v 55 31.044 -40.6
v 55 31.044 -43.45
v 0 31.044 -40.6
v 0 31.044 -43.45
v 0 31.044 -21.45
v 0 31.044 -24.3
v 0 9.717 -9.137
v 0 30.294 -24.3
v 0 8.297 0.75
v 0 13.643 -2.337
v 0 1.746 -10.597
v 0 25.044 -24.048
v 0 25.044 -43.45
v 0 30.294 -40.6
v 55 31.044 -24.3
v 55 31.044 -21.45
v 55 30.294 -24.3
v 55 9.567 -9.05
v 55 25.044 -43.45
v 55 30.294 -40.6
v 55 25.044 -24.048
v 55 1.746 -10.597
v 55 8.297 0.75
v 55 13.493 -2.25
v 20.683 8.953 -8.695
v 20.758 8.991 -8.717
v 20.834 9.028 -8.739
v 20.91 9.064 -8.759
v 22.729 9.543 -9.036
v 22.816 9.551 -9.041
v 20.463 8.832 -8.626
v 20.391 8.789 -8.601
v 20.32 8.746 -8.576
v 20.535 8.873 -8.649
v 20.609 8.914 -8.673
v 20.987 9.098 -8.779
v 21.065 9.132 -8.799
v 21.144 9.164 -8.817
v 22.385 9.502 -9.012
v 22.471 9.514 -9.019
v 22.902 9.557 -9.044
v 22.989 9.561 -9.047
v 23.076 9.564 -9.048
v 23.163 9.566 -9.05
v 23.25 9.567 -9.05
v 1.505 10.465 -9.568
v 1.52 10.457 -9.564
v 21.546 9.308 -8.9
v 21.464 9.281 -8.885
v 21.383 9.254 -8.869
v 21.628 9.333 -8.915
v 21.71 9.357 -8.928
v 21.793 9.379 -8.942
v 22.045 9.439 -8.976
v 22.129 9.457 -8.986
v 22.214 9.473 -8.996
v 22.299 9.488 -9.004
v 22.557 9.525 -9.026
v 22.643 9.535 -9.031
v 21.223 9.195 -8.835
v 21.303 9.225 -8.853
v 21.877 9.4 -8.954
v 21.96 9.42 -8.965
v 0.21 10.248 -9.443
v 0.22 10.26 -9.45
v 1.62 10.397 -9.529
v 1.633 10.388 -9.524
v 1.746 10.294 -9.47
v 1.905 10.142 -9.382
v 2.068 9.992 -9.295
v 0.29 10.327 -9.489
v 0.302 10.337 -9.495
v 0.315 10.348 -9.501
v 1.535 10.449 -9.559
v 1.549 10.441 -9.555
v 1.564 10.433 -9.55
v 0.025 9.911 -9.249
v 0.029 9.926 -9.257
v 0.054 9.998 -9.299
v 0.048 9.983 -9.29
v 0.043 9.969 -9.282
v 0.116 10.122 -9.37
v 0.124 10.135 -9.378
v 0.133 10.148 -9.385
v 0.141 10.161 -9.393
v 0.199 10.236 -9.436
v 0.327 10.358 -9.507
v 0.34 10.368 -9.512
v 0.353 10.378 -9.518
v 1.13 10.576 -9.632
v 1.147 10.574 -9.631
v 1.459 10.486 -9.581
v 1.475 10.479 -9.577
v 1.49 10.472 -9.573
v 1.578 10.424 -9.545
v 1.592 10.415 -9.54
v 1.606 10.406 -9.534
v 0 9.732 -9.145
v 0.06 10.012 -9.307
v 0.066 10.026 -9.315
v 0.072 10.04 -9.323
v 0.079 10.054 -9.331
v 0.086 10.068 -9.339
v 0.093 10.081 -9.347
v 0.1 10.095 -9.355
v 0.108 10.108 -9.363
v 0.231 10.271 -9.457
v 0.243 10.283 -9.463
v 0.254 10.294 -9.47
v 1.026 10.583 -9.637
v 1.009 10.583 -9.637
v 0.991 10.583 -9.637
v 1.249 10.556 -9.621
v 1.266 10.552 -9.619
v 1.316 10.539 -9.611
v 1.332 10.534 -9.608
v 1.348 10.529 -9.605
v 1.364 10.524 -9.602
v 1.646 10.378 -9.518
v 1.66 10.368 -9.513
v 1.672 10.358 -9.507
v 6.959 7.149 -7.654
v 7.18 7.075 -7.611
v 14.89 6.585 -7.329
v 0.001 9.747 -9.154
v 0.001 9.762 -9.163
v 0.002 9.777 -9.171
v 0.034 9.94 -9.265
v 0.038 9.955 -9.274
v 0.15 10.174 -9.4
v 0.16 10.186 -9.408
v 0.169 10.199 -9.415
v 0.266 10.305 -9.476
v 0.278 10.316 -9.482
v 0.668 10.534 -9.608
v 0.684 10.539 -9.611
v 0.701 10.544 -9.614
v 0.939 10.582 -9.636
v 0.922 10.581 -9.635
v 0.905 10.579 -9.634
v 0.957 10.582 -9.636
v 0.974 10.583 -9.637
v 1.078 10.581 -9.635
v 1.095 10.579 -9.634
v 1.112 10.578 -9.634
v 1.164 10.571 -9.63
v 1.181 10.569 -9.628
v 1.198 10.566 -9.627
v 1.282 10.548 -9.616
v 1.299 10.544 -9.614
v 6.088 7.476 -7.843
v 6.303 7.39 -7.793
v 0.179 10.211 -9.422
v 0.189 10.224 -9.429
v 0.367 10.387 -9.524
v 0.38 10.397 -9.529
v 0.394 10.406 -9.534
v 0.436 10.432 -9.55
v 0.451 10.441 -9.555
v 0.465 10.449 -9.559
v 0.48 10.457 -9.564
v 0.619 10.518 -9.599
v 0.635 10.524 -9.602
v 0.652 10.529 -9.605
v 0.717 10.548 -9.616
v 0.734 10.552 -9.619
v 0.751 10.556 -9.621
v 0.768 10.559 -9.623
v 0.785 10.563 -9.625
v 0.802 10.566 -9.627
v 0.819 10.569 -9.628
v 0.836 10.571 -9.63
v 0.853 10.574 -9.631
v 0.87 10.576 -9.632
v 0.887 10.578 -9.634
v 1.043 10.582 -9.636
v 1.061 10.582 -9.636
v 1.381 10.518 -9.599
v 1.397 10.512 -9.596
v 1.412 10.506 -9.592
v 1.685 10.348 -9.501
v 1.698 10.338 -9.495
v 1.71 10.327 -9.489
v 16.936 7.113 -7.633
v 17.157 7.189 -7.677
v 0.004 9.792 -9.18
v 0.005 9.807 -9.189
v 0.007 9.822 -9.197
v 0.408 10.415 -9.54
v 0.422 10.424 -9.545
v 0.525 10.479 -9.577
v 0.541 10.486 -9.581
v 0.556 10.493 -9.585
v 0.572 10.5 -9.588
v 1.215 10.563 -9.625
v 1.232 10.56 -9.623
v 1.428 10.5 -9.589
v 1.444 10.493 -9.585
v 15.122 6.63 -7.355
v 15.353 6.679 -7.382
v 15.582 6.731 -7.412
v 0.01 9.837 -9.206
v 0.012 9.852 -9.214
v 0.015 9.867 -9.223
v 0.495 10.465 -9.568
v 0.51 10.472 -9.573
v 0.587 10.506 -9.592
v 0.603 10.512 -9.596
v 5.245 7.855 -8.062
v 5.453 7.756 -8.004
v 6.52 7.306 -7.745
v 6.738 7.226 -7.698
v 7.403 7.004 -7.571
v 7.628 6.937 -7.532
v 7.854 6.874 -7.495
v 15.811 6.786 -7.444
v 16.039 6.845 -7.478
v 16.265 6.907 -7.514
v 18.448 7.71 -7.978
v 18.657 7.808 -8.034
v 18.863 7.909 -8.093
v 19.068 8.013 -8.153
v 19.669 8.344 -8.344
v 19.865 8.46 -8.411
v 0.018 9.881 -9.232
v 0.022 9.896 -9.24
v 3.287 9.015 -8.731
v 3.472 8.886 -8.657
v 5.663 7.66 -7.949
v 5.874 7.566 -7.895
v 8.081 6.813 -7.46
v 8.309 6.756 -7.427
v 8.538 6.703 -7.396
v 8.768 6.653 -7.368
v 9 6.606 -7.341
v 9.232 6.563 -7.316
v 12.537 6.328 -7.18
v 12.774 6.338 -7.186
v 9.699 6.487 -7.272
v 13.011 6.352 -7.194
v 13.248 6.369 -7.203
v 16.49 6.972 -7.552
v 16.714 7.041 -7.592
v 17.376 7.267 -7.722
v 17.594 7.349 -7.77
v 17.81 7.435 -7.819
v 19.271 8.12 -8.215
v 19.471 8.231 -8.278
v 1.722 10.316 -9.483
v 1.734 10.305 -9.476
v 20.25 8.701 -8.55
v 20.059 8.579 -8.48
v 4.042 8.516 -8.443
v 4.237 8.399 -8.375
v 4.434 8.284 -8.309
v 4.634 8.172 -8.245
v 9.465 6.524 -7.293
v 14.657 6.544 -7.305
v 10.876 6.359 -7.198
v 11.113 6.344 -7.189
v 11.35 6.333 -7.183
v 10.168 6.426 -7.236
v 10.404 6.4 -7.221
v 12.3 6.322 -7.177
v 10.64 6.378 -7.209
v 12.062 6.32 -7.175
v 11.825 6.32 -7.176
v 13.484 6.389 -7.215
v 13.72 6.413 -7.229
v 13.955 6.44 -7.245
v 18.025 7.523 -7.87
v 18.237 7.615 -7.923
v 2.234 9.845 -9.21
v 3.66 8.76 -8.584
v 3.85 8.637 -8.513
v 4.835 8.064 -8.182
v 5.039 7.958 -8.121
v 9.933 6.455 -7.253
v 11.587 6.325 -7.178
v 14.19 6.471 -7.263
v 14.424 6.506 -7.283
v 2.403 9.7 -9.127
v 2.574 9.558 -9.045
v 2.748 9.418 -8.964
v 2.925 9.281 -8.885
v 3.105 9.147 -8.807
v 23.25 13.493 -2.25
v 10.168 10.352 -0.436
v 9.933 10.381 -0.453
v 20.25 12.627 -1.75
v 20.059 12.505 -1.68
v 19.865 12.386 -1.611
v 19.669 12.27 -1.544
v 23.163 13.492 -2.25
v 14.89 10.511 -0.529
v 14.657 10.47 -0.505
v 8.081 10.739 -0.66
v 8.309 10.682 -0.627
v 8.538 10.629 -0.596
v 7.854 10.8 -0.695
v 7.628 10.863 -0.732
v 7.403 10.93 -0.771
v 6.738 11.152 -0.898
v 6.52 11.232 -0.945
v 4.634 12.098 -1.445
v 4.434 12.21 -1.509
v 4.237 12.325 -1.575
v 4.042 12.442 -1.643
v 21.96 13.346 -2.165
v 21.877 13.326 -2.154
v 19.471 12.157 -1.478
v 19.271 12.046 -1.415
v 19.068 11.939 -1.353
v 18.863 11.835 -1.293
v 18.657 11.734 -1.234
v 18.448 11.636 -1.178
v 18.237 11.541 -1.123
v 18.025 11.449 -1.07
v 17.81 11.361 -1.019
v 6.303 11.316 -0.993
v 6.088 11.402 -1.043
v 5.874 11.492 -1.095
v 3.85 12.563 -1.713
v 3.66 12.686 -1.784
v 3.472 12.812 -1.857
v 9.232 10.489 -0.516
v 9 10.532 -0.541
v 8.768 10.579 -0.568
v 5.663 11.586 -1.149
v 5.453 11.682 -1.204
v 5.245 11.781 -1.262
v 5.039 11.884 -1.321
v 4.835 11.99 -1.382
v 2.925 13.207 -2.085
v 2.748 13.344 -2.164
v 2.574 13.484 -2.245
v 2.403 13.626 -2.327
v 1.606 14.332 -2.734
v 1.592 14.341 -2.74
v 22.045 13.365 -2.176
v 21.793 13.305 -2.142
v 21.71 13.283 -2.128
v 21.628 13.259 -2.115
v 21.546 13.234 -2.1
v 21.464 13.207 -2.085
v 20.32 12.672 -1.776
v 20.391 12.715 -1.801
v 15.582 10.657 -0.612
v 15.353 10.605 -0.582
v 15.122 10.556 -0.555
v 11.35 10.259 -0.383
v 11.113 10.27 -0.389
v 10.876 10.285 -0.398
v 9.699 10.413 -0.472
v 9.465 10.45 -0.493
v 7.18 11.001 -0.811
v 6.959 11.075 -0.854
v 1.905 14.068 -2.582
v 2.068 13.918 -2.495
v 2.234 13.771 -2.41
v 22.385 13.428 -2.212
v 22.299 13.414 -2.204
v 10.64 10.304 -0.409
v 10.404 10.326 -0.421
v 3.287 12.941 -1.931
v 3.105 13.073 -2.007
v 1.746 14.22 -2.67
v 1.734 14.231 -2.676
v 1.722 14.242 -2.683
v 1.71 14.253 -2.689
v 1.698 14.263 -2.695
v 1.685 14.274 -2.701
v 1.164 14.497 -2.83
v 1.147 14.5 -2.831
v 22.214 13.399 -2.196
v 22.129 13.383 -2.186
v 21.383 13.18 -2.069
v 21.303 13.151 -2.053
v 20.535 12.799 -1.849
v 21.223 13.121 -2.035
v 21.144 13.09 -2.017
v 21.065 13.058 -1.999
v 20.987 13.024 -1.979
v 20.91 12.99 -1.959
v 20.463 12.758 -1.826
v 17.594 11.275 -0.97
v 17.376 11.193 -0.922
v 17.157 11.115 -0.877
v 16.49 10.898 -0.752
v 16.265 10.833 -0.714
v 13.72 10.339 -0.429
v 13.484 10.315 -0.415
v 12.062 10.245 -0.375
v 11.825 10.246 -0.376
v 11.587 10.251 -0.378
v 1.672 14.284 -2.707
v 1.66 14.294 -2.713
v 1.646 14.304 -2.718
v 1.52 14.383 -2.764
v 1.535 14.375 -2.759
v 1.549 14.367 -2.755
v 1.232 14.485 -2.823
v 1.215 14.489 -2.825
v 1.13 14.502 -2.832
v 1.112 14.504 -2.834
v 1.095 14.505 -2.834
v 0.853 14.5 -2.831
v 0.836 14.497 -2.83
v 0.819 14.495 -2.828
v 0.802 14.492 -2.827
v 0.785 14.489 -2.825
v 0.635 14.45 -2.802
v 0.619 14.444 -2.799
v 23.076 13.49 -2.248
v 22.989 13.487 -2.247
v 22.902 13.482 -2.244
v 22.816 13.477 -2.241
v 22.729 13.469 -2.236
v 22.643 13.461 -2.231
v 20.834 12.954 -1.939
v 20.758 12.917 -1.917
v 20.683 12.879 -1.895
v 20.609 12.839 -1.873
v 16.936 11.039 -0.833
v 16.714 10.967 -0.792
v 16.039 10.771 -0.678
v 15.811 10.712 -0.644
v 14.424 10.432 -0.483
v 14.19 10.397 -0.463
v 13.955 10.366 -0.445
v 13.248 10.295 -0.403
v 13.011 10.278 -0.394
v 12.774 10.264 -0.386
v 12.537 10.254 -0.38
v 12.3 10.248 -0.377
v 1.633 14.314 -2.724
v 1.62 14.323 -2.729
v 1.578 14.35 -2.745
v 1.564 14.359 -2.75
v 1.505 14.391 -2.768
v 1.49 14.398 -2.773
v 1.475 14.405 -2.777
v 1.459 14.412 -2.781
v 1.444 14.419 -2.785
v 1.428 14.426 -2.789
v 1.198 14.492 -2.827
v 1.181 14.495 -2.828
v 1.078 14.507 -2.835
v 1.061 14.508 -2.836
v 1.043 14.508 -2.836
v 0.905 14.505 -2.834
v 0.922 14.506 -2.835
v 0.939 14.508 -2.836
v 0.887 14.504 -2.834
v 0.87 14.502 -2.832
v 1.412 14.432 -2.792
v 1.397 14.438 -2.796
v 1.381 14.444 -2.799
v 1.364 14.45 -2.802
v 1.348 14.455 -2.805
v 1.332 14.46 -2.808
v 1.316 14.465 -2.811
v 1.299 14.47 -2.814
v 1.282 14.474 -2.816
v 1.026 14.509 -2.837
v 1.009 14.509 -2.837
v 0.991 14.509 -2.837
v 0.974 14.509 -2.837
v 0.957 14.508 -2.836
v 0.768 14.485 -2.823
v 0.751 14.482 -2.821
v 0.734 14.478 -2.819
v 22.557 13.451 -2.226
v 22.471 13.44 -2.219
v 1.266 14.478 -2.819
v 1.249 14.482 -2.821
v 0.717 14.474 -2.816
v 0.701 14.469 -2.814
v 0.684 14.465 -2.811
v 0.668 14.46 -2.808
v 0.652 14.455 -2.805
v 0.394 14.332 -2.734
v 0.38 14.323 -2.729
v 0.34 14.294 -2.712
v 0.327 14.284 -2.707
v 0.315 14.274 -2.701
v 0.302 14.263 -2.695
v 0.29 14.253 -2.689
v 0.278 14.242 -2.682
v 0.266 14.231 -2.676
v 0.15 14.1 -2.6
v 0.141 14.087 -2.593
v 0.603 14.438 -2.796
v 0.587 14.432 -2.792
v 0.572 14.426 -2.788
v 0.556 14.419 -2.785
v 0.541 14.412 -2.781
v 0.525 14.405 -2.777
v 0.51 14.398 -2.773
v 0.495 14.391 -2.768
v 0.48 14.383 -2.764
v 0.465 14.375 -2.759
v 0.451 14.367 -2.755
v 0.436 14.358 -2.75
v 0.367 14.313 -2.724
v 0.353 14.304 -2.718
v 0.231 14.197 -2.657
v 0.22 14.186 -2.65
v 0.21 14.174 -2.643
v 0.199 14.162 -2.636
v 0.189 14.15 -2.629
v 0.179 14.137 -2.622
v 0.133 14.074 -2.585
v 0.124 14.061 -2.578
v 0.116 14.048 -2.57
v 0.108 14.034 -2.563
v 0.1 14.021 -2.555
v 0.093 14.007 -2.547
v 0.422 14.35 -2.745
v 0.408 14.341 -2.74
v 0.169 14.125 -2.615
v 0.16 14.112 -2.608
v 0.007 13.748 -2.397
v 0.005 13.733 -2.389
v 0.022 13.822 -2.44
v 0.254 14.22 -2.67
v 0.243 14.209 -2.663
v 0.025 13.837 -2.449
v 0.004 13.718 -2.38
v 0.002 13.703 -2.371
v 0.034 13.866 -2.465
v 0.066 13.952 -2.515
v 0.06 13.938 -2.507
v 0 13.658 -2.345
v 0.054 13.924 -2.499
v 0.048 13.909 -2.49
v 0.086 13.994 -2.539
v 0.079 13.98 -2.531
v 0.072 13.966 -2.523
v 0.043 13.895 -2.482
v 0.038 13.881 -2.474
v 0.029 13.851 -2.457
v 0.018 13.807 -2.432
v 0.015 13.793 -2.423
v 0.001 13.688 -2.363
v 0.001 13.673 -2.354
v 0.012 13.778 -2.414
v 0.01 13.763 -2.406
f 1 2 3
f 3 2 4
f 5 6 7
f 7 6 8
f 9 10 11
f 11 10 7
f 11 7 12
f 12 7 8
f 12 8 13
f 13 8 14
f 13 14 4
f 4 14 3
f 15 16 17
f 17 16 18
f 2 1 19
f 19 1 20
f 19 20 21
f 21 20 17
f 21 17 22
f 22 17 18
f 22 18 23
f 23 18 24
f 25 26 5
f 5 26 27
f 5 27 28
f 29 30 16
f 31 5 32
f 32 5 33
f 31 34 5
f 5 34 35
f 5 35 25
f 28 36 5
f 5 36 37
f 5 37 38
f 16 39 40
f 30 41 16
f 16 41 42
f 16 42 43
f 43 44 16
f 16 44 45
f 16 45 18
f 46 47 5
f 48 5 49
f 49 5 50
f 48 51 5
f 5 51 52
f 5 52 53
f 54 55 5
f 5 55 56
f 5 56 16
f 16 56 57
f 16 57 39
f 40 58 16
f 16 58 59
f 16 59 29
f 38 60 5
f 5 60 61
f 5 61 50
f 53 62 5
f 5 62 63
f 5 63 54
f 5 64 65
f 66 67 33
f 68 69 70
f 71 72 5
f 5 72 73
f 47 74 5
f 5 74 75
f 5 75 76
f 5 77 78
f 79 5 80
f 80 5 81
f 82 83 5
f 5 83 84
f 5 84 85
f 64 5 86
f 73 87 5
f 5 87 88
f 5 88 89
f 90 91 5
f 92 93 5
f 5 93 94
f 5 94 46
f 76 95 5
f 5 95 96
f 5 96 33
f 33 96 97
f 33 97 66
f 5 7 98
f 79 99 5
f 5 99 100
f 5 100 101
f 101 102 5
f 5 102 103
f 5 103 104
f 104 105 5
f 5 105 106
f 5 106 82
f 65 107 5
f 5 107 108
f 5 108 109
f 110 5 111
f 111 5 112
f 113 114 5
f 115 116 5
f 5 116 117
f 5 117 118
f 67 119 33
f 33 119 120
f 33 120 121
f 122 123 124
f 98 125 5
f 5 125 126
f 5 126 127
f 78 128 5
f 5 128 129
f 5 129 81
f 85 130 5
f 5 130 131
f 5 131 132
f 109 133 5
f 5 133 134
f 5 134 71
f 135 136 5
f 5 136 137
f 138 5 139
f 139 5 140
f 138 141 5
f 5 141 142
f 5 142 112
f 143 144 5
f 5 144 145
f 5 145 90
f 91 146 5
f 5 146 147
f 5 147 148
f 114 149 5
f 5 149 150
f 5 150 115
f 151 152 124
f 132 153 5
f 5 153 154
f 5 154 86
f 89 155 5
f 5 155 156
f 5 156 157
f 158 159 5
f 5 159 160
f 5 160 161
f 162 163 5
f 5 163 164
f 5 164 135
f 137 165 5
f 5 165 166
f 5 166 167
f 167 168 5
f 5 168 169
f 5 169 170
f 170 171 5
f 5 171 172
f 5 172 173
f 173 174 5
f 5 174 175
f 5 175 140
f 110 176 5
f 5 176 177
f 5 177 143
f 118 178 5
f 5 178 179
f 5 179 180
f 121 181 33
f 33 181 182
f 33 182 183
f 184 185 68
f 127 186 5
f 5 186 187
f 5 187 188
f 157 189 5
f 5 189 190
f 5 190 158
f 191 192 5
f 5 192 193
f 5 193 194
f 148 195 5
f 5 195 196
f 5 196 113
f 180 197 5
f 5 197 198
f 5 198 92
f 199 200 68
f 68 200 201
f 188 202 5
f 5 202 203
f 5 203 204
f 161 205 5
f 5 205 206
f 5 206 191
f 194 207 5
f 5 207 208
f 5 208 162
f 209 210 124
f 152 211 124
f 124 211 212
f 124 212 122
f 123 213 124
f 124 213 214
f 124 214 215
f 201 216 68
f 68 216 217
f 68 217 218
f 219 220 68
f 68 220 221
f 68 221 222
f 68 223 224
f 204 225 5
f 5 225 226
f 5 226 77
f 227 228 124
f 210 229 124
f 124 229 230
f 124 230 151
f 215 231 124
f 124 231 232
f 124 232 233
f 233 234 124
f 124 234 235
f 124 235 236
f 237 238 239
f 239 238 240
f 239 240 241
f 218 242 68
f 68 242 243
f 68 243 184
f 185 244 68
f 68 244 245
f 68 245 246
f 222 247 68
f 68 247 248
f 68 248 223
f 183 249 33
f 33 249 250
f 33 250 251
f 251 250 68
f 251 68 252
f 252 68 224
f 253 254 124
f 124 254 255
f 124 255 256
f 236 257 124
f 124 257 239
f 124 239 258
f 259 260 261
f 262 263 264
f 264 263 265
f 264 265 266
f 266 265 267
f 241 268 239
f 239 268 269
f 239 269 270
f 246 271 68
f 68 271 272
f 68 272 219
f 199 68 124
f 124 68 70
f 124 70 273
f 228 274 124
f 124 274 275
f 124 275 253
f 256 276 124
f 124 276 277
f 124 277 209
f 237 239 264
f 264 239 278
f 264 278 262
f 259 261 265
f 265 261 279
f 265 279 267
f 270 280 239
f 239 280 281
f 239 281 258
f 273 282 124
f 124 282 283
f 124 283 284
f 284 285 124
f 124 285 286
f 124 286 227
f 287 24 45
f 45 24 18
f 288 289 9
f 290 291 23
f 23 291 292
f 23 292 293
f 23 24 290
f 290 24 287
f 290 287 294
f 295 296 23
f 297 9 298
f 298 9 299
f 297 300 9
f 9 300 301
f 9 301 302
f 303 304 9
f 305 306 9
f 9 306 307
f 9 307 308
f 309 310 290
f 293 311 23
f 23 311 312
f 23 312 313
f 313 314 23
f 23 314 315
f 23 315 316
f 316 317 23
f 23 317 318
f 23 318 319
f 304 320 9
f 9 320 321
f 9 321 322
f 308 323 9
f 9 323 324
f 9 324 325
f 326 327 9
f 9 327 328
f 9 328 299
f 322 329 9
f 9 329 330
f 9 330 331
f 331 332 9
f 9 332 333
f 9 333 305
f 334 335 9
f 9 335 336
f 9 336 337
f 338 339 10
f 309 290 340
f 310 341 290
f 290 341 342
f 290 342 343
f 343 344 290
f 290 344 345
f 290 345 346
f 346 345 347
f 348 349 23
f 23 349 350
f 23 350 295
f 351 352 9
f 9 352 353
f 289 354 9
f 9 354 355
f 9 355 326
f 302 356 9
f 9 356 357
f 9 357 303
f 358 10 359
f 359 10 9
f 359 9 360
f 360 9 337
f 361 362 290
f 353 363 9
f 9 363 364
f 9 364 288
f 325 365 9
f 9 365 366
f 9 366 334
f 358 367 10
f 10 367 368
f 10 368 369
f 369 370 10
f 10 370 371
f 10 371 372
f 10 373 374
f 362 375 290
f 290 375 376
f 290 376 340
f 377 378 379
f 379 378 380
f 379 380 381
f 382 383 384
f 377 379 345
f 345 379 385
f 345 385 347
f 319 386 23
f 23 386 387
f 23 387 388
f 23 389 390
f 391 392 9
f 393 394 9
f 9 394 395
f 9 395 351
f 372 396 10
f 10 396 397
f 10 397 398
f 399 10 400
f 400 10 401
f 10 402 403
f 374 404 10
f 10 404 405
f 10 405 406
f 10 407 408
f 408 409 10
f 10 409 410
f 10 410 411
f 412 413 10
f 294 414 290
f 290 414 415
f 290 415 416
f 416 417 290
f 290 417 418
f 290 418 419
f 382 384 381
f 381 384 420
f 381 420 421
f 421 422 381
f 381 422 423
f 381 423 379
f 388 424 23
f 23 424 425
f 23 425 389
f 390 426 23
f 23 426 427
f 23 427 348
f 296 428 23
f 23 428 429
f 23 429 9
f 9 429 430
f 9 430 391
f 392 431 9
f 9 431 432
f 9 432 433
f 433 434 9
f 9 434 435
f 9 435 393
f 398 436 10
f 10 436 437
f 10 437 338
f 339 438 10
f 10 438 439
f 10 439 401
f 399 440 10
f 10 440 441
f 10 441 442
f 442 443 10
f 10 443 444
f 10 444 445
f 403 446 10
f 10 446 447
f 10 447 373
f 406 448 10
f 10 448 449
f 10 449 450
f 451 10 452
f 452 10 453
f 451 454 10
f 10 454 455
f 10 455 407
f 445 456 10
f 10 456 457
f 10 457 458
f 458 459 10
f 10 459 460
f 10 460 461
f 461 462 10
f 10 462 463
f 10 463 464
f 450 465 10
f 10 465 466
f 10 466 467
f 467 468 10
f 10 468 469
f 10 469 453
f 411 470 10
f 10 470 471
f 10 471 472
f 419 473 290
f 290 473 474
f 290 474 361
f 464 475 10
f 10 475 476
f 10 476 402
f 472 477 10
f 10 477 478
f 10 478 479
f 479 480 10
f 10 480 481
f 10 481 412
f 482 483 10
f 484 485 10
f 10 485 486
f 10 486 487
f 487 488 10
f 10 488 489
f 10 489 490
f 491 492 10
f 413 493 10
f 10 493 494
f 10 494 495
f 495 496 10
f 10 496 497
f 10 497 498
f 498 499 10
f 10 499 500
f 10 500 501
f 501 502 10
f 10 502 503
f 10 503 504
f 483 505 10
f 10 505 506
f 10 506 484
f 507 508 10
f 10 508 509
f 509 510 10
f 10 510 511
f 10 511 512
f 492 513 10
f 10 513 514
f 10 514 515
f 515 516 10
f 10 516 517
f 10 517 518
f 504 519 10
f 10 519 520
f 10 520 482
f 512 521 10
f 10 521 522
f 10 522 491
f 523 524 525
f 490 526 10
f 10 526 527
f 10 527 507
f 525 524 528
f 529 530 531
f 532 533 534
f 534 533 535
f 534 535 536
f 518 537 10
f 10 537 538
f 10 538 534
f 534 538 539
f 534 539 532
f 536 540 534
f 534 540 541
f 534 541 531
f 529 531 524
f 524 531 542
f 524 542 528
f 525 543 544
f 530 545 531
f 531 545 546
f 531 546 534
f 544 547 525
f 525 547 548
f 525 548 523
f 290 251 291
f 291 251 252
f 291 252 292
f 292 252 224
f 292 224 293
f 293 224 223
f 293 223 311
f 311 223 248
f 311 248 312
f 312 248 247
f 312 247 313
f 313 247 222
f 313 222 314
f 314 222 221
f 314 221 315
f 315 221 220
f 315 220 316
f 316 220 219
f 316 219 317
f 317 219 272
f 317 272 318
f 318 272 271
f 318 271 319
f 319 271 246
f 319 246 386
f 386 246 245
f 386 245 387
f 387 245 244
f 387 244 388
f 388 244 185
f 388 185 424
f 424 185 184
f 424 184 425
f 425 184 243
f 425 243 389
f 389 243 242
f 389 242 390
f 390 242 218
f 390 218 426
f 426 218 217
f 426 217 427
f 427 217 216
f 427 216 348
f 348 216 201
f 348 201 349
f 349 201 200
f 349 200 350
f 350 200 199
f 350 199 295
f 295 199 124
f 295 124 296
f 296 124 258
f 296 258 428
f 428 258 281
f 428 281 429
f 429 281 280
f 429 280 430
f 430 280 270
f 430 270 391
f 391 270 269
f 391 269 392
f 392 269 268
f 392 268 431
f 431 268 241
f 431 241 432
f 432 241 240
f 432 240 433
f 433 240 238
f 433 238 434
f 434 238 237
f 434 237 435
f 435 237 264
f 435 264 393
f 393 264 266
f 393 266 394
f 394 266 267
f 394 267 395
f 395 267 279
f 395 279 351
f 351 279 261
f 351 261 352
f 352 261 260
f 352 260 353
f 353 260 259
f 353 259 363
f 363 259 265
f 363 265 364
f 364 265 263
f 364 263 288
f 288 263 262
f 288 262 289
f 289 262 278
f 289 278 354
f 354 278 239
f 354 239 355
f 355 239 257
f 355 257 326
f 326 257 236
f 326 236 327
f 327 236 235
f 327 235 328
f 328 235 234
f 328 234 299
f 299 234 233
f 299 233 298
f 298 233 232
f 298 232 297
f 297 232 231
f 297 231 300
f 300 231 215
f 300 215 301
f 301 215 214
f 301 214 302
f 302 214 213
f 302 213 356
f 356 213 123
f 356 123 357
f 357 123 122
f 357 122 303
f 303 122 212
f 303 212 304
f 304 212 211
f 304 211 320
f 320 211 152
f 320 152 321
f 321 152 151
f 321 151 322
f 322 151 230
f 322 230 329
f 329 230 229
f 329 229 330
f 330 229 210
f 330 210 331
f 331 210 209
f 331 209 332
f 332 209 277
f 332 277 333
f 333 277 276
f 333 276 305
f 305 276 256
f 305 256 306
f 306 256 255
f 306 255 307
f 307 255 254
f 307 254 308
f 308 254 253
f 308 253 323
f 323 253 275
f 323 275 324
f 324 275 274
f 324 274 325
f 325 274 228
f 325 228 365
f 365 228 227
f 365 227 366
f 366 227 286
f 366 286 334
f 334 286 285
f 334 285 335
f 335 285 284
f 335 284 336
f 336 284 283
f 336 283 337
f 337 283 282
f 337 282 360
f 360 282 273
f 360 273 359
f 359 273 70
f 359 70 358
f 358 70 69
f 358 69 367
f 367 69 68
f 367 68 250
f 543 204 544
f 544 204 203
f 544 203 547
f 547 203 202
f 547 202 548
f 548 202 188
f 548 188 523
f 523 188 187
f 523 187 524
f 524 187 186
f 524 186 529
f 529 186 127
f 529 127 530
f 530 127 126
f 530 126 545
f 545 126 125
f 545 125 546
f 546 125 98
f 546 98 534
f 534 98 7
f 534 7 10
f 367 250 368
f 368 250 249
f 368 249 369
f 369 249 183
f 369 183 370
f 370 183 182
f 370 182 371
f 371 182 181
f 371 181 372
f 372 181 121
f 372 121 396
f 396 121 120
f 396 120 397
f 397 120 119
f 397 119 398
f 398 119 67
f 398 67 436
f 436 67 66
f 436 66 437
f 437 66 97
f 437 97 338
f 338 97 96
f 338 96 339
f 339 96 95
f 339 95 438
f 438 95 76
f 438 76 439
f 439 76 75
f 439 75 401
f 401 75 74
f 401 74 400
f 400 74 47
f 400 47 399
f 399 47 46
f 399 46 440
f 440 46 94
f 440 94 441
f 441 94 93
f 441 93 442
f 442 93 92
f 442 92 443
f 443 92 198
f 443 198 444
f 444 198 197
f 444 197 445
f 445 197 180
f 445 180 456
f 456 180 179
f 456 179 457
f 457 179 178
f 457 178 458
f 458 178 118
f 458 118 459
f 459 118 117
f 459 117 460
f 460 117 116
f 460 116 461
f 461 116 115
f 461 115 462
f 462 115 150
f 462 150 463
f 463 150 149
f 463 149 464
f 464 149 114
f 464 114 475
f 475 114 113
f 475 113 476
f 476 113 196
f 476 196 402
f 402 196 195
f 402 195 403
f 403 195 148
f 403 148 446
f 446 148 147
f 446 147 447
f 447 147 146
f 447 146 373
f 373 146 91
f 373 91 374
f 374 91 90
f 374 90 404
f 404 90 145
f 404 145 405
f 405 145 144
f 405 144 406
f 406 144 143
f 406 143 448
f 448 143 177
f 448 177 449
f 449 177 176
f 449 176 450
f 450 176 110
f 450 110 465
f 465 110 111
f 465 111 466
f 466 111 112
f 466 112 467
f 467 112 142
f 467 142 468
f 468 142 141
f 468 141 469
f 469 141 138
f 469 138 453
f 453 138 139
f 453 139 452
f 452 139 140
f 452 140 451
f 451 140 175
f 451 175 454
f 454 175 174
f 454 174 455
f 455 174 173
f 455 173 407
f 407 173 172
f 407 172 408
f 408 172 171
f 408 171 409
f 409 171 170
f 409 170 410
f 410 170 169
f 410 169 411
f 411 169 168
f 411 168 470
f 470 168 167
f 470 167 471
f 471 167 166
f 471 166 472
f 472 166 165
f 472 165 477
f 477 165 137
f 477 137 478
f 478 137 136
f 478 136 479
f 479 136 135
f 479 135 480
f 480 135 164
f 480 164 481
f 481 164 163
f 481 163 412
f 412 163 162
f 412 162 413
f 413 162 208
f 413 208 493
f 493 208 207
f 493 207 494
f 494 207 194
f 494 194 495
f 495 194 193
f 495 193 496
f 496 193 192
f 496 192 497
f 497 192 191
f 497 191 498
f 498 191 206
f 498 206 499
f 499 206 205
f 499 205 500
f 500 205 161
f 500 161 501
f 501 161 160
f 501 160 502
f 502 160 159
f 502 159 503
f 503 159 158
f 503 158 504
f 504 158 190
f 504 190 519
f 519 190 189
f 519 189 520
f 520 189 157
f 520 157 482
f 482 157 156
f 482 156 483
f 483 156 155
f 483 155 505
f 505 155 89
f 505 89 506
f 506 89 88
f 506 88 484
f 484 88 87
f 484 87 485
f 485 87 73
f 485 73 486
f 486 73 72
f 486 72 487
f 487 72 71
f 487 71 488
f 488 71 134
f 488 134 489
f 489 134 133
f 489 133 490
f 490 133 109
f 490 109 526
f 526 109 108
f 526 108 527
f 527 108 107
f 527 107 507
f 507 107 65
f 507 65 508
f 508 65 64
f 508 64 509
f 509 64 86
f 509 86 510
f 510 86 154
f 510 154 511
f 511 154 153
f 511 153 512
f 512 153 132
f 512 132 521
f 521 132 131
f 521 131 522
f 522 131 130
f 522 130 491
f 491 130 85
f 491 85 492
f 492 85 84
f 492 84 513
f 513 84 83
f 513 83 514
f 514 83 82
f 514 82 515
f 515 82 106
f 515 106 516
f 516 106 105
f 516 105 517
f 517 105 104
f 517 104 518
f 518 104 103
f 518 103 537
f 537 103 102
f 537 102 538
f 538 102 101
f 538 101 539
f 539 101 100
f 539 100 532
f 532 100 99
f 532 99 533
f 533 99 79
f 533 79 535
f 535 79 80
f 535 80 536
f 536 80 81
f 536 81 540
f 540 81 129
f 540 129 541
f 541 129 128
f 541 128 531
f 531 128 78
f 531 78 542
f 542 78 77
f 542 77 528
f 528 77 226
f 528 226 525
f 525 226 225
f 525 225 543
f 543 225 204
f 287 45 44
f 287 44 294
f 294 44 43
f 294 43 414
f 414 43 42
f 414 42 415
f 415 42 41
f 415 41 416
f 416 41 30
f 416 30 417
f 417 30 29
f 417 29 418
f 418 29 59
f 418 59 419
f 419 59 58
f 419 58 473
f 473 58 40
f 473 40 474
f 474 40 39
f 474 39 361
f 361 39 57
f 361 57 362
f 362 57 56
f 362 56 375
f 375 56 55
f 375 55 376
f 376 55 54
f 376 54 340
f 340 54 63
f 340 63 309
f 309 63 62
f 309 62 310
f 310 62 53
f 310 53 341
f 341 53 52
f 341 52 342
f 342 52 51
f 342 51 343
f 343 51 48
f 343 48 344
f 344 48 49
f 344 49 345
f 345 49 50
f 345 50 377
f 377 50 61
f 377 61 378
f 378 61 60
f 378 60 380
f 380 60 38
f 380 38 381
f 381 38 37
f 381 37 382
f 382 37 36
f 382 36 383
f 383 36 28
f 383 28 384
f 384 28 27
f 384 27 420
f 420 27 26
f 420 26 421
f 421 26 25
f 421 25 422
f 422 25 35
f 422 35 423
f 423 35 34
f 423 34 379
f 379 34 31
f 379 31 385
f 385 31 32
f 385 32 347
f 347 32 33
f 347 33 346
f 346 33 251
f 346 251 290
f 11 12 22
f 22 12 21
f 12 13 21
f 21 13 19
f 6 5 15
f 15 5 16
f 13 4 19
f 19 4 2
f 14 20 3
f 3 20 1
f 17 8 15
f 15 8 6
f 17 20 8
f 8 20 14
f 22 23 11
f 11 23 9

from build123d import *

# Parameters (mm, degrees)
BOSS_EXTRUDE1_DEPTH = 80
CUT_EXTRUDE1_DEPTH  = 50
CUT_EXTRUDE2_DEPTH  = 101.49080803735235
BOSS_EXTRUDE2_REACH = 102.491
CUT_EXTRUDE10_DEPTH = 50
SKETCH6_R           = 13.750000000000007
CUT_EXTRUDE3_DEPTH  = 102.06821275824429
CUT_EXTRUDE4_DEPTH  = 101.49080803735237
SKETCH8_R           = 6.000000000000003
CUT_EXTRUDE5_DEPTH  = 73.15845701593427
CUT_EXTRUDE6_DEPTH  = 73.15845701593429
CUT_EXTRUDE7_DEPTH  = 69.27999960632745
FILLET5_R           = 1
FILLET6_R           = 5
CUT_EXTRUDE8_DEPTH  = 67.6997627150144
BOSS_EXTRUDE4_DEPTH = 22
BOSS_EXTRUDE5_DEPTH = 55
CUT_EXTRUDE9_DEPTH  = 0.75
BOSS_EXTRUDE6_DEPTH = 55


with BuildPart() as part:
    # Sketch1 → Boss-Extrude1 (new body)
    with BuildSketch(Plane(origin=(0, 0, 0), x_dir=(1, 0, 0), z_dir=(0, 1, 0))):
        Polygon((-1e-17, 25.95), (55, 25.95), (55.00000000000001, 0), (0, 0), align=None)
    extrude(amount=BOSS_EXTRUDE1_DEPTH)

    # Sketch4 → Cut-Extrude1 (cut)
    with BuildSketch(Plane(origin=(55.00000000000001, 0, -1.471e-14), x_dir=(0, 0, -1), z_dir=(1, 0, 0))):
        Polygon((-77.30254037844365, 60.0000000000004), (-27.30254037844327, 146.60254037844405), (59.300000000000374, 96.60254037844365), (9.299999999999985, 9.999999999999995), align=None)
    extrude(amount=-CUT_EXTRUDE1_DEPTH, mode=Mode.SUBTRACT)

    # Sketch5 → Cut-Extrude2 (cut, through all)
    with BuildSketch(Plane(origin=(55.00000000000001, 0, -1.471e-14), x_dir=(0, 0, -1), z_dir=(1, 0, 0))):
        Polygon((-11.160254037844386, 10.265727792645105), (-6.160254037844387, 18.92598183048949), (2.4999999999999942, 13.925981830489496), (-2.499999999999998, 5.265727792645102), align=None)
    extrude(amount=-CUT_EXTRUDE2_DEPTH, mode=Mode.SUBTRACT)

    # Sketch12 → Boss-Extrude2 (add, up to next)
    with BuildSketch(Plane(origin=(55.00000000000001, 0, -1.471e-14), x_dir=(0, 0, -1), z_dir=(1, 0, 0)), mode=Mode.PRIVATE) as boss_extrude2_sk1:
        Polygon((2.4999999999999942, 13.925981830489496), (9.299999999999985, 9.999999999999995), (9.800000000000008, 10.866025403784473), (2.9999999999999933, 14.792007234273935), align=None)
    boss_extrude2_tool1 = extrude(boss_extrude2_sk1.sketch, amount=-BOSS_EXTRUDE2_REACH, mode=Mode.PRIVATE) - part.part
    add(boss_extrude2_tool1.solids().sort_by_distance((55, 12.396004, -6.15))[0])

    # Sketch21 → Cut-Extrude10 (cut)
    with BuildSketch(Plane(origin=(55.00000000000001, 0, -1.471e-14), x_dir=(-2.7e-16, 0, -1), z_dir=(1, 0, -2.7e-16))):
        Polygon((3.0000000000000075, 14.792007234273937), (2.2500000000000036, 13.49296912859728), (9.050000000000018, 9.566987298107822), (9.800000000000008, 10.866025403784464), align=None)
    extrude(amount=-CUT_EXTRUDE10_DEPTH, mode=Mode.SUBTRACT)

    # Sketch6 → Cut-Extrude3 (cut, through all)
    with BuildSketch(Plane(origin=(0, -1.5270181275976227, -2.6448729810777505), x_dir=(1, 0, 0), z_dir=(0, 0.5000000000000042, 0.8660254037844363))):
        with Locations((12.000000000000004, 22.810254037844377)):
            Circle(SKETCH6_R)
    extrude(amount=CUT_EXTRUDE3_DEPTH, mode=Mode.SUBTRACT)

    # Sketch7 → Cut-Extrude4 (cut, through all)
    with BuildSketch(Plane(origin=(55.00000000000001, 0, -1.471e-14), x_dir=(0, 0, -1), z_dir=(1, 0, 0))):
        Polygon((-1.613e-14, 9.595854811567275), (3.8935696044755734, 16.339715189324856), (10.693569604475588, 12.413733358835394), (66.80169358562932, 109.59585481156728), (25.408423261372093, 109.59585481156728), (-1e-17, 109.59585481156728), align=None)
    extrude(amount=-CUT_EXTRUDE4_DEPTH, mode=Mode.SUBTRACT)

    # Sketch8 → Cut-Extrude5 (cut, through all)
    with BuildSketch(Plane(origin=(0, 0, 0), x_dir=(1, 0, 0), z_dir=(0, 1, 0))):
        with Locations((25.749999999999996, 27.449999999999996)):
            Circle(SKETCH8_R)
    extrude(amount=CUT_EXTRUDE5_DEPTH, mode=Mode.SUBTRACT)

    # Sketch9 → Cut-Extrude6 (cut, through all)
    with BuildSketch(Plane(origin=(55.00000000000001, 0, -1.471e-14), x_dir=(0, 0, -1), z_dir=(1, 0, 0))):
        Polygon((21.449999999999978, 31.044417311961634), (25.94999999999998, 31.044417311961634), (25.94999999999998, 38.8386459460215), align=None)
    extrude(amount=-CUT_EXTRUDE6_DEPTH, mode=Mode.SUBTRACT)

    # Sketch10 → Cut-Extrude7 (cut, through all)
    with BuildSketch(Plane(origin=(0, 0, 0), x_dir=(1, 0, 0), z_dir=(0, 1, 0))):
        Polygon((55.00000000000001, 21.449999999999992), (0, 21.449999999999996), (0, 25.94999999999999), (55.00000000000001, 25.949999999999992), align=None)
    extrude(amount=CUT_EXTRUDE7_DEPTH, mode=Mode.SUBTRACT)

    # Fillet5
    fillet5_edges = [part.edges().sort_by_distance(p)[0] for p in [
        (0, 14.37672427408014, -7.293569604475611),
    ]]
    fillet(fillet5_edges, radius=FILLET5_R)

    # Fillet6
    fillet6_edges = [part.edges().sort_by_distance(p)[0] for p in [
        (21.437293044088527, 11.52997821335257, -5.650000000000027),
    ]]
    fillet(fillet6_edges, radius=FILLET6_R)

    # Sketch16 → Cut-Extrude8 (cut, through all)
    with BuildSketch(Plane(origin=(55.00000000000001, 0, -1.471e-14), x_dir=(0, 0, -1), z_dir=(1, 0, 0))):
        Polygon((21.44999999999998, 20.54441731196163), (11.346633369868394, 3.04487298107776), (-1.613e-14, 9.595854811567275), (1.8e-15, 0), (21.44999999999998, 0), align=None)
    extrude(amount=-CUT_EXTRUDE8_DEPTH, mode=Mode.SUBTRACT)

    # Sketch17 → Boss-Extrude4 (add)
    with BuildSketch(Plane(origin=(1.35e-15, 0, -21.449999999999996), x_dir=(-1, 0, 0), z_dir=(0, 0, -1))):
        Polygon((-55.00000000000001, 31.044417311961634), (1.35e-15, 31.044417311961634), (7.2e-16, 25.044417311961638), (-55.00000000000001, 25.044417311961638), align=None)
    extrude(amount=BOSS_EXTRUDE4_DEPTH)

    # Sketch18 → Boss-Extrude5 (add)
    with BuildSketch(Plane(origin=(55.00000000000001, 0, -1.471e-14), x_dir=(-2.4e-16, 0, -1), z_dir=(1, 0, -2.4e-16))):
        Polygon((16.39831668493419, 11.794645146519695), (27.51217782649105, 31.044417311961634), (21.449999999999978, 31.044417311961634), (11.8516833150658, 14.419645146519745), align=None)
    extrude(amount=-BOSS_EXTRUDE5_DEPTH)

    # Sketch19 → Cut-Extrude9 (cut)
    with BuildSketch(Plane(origin=(0, 31.044417311961634, 0), x_dir=(1, 0, 0), z_dir=(0, 1, 0))):
        Polygon((1e-15, 40.599999999999994), (55.00000000000001, 40.6), (55.00000000000001, 24.29999999999999), (2e-15, 24.29999999999999), align=None)
    extrude(amount=-CUT_EXTRUDE9_DEPTH, mode=Mode.SUBTRACT)

    # Sketch20 → Boss-Extrude6 (add)
    with BuildSketch(Plane(origin=(55.00000000000001, 0, -1.471e-14), x_dir=(-2.4e-16, 0, -1), z_dir=(1, 0, -2.4e-16))):
        Polygon((-1.613e-14, 9.595854811567275), (-0.7500000000000167, 8.296816705890615), (10.59663336986839, 1.7458348754011042), (11.346633369868393, 3.04487298107776), align=None)
    extrude(amount=-BOSS_EXTRUDE6_DEPTH)


solid = part.part
